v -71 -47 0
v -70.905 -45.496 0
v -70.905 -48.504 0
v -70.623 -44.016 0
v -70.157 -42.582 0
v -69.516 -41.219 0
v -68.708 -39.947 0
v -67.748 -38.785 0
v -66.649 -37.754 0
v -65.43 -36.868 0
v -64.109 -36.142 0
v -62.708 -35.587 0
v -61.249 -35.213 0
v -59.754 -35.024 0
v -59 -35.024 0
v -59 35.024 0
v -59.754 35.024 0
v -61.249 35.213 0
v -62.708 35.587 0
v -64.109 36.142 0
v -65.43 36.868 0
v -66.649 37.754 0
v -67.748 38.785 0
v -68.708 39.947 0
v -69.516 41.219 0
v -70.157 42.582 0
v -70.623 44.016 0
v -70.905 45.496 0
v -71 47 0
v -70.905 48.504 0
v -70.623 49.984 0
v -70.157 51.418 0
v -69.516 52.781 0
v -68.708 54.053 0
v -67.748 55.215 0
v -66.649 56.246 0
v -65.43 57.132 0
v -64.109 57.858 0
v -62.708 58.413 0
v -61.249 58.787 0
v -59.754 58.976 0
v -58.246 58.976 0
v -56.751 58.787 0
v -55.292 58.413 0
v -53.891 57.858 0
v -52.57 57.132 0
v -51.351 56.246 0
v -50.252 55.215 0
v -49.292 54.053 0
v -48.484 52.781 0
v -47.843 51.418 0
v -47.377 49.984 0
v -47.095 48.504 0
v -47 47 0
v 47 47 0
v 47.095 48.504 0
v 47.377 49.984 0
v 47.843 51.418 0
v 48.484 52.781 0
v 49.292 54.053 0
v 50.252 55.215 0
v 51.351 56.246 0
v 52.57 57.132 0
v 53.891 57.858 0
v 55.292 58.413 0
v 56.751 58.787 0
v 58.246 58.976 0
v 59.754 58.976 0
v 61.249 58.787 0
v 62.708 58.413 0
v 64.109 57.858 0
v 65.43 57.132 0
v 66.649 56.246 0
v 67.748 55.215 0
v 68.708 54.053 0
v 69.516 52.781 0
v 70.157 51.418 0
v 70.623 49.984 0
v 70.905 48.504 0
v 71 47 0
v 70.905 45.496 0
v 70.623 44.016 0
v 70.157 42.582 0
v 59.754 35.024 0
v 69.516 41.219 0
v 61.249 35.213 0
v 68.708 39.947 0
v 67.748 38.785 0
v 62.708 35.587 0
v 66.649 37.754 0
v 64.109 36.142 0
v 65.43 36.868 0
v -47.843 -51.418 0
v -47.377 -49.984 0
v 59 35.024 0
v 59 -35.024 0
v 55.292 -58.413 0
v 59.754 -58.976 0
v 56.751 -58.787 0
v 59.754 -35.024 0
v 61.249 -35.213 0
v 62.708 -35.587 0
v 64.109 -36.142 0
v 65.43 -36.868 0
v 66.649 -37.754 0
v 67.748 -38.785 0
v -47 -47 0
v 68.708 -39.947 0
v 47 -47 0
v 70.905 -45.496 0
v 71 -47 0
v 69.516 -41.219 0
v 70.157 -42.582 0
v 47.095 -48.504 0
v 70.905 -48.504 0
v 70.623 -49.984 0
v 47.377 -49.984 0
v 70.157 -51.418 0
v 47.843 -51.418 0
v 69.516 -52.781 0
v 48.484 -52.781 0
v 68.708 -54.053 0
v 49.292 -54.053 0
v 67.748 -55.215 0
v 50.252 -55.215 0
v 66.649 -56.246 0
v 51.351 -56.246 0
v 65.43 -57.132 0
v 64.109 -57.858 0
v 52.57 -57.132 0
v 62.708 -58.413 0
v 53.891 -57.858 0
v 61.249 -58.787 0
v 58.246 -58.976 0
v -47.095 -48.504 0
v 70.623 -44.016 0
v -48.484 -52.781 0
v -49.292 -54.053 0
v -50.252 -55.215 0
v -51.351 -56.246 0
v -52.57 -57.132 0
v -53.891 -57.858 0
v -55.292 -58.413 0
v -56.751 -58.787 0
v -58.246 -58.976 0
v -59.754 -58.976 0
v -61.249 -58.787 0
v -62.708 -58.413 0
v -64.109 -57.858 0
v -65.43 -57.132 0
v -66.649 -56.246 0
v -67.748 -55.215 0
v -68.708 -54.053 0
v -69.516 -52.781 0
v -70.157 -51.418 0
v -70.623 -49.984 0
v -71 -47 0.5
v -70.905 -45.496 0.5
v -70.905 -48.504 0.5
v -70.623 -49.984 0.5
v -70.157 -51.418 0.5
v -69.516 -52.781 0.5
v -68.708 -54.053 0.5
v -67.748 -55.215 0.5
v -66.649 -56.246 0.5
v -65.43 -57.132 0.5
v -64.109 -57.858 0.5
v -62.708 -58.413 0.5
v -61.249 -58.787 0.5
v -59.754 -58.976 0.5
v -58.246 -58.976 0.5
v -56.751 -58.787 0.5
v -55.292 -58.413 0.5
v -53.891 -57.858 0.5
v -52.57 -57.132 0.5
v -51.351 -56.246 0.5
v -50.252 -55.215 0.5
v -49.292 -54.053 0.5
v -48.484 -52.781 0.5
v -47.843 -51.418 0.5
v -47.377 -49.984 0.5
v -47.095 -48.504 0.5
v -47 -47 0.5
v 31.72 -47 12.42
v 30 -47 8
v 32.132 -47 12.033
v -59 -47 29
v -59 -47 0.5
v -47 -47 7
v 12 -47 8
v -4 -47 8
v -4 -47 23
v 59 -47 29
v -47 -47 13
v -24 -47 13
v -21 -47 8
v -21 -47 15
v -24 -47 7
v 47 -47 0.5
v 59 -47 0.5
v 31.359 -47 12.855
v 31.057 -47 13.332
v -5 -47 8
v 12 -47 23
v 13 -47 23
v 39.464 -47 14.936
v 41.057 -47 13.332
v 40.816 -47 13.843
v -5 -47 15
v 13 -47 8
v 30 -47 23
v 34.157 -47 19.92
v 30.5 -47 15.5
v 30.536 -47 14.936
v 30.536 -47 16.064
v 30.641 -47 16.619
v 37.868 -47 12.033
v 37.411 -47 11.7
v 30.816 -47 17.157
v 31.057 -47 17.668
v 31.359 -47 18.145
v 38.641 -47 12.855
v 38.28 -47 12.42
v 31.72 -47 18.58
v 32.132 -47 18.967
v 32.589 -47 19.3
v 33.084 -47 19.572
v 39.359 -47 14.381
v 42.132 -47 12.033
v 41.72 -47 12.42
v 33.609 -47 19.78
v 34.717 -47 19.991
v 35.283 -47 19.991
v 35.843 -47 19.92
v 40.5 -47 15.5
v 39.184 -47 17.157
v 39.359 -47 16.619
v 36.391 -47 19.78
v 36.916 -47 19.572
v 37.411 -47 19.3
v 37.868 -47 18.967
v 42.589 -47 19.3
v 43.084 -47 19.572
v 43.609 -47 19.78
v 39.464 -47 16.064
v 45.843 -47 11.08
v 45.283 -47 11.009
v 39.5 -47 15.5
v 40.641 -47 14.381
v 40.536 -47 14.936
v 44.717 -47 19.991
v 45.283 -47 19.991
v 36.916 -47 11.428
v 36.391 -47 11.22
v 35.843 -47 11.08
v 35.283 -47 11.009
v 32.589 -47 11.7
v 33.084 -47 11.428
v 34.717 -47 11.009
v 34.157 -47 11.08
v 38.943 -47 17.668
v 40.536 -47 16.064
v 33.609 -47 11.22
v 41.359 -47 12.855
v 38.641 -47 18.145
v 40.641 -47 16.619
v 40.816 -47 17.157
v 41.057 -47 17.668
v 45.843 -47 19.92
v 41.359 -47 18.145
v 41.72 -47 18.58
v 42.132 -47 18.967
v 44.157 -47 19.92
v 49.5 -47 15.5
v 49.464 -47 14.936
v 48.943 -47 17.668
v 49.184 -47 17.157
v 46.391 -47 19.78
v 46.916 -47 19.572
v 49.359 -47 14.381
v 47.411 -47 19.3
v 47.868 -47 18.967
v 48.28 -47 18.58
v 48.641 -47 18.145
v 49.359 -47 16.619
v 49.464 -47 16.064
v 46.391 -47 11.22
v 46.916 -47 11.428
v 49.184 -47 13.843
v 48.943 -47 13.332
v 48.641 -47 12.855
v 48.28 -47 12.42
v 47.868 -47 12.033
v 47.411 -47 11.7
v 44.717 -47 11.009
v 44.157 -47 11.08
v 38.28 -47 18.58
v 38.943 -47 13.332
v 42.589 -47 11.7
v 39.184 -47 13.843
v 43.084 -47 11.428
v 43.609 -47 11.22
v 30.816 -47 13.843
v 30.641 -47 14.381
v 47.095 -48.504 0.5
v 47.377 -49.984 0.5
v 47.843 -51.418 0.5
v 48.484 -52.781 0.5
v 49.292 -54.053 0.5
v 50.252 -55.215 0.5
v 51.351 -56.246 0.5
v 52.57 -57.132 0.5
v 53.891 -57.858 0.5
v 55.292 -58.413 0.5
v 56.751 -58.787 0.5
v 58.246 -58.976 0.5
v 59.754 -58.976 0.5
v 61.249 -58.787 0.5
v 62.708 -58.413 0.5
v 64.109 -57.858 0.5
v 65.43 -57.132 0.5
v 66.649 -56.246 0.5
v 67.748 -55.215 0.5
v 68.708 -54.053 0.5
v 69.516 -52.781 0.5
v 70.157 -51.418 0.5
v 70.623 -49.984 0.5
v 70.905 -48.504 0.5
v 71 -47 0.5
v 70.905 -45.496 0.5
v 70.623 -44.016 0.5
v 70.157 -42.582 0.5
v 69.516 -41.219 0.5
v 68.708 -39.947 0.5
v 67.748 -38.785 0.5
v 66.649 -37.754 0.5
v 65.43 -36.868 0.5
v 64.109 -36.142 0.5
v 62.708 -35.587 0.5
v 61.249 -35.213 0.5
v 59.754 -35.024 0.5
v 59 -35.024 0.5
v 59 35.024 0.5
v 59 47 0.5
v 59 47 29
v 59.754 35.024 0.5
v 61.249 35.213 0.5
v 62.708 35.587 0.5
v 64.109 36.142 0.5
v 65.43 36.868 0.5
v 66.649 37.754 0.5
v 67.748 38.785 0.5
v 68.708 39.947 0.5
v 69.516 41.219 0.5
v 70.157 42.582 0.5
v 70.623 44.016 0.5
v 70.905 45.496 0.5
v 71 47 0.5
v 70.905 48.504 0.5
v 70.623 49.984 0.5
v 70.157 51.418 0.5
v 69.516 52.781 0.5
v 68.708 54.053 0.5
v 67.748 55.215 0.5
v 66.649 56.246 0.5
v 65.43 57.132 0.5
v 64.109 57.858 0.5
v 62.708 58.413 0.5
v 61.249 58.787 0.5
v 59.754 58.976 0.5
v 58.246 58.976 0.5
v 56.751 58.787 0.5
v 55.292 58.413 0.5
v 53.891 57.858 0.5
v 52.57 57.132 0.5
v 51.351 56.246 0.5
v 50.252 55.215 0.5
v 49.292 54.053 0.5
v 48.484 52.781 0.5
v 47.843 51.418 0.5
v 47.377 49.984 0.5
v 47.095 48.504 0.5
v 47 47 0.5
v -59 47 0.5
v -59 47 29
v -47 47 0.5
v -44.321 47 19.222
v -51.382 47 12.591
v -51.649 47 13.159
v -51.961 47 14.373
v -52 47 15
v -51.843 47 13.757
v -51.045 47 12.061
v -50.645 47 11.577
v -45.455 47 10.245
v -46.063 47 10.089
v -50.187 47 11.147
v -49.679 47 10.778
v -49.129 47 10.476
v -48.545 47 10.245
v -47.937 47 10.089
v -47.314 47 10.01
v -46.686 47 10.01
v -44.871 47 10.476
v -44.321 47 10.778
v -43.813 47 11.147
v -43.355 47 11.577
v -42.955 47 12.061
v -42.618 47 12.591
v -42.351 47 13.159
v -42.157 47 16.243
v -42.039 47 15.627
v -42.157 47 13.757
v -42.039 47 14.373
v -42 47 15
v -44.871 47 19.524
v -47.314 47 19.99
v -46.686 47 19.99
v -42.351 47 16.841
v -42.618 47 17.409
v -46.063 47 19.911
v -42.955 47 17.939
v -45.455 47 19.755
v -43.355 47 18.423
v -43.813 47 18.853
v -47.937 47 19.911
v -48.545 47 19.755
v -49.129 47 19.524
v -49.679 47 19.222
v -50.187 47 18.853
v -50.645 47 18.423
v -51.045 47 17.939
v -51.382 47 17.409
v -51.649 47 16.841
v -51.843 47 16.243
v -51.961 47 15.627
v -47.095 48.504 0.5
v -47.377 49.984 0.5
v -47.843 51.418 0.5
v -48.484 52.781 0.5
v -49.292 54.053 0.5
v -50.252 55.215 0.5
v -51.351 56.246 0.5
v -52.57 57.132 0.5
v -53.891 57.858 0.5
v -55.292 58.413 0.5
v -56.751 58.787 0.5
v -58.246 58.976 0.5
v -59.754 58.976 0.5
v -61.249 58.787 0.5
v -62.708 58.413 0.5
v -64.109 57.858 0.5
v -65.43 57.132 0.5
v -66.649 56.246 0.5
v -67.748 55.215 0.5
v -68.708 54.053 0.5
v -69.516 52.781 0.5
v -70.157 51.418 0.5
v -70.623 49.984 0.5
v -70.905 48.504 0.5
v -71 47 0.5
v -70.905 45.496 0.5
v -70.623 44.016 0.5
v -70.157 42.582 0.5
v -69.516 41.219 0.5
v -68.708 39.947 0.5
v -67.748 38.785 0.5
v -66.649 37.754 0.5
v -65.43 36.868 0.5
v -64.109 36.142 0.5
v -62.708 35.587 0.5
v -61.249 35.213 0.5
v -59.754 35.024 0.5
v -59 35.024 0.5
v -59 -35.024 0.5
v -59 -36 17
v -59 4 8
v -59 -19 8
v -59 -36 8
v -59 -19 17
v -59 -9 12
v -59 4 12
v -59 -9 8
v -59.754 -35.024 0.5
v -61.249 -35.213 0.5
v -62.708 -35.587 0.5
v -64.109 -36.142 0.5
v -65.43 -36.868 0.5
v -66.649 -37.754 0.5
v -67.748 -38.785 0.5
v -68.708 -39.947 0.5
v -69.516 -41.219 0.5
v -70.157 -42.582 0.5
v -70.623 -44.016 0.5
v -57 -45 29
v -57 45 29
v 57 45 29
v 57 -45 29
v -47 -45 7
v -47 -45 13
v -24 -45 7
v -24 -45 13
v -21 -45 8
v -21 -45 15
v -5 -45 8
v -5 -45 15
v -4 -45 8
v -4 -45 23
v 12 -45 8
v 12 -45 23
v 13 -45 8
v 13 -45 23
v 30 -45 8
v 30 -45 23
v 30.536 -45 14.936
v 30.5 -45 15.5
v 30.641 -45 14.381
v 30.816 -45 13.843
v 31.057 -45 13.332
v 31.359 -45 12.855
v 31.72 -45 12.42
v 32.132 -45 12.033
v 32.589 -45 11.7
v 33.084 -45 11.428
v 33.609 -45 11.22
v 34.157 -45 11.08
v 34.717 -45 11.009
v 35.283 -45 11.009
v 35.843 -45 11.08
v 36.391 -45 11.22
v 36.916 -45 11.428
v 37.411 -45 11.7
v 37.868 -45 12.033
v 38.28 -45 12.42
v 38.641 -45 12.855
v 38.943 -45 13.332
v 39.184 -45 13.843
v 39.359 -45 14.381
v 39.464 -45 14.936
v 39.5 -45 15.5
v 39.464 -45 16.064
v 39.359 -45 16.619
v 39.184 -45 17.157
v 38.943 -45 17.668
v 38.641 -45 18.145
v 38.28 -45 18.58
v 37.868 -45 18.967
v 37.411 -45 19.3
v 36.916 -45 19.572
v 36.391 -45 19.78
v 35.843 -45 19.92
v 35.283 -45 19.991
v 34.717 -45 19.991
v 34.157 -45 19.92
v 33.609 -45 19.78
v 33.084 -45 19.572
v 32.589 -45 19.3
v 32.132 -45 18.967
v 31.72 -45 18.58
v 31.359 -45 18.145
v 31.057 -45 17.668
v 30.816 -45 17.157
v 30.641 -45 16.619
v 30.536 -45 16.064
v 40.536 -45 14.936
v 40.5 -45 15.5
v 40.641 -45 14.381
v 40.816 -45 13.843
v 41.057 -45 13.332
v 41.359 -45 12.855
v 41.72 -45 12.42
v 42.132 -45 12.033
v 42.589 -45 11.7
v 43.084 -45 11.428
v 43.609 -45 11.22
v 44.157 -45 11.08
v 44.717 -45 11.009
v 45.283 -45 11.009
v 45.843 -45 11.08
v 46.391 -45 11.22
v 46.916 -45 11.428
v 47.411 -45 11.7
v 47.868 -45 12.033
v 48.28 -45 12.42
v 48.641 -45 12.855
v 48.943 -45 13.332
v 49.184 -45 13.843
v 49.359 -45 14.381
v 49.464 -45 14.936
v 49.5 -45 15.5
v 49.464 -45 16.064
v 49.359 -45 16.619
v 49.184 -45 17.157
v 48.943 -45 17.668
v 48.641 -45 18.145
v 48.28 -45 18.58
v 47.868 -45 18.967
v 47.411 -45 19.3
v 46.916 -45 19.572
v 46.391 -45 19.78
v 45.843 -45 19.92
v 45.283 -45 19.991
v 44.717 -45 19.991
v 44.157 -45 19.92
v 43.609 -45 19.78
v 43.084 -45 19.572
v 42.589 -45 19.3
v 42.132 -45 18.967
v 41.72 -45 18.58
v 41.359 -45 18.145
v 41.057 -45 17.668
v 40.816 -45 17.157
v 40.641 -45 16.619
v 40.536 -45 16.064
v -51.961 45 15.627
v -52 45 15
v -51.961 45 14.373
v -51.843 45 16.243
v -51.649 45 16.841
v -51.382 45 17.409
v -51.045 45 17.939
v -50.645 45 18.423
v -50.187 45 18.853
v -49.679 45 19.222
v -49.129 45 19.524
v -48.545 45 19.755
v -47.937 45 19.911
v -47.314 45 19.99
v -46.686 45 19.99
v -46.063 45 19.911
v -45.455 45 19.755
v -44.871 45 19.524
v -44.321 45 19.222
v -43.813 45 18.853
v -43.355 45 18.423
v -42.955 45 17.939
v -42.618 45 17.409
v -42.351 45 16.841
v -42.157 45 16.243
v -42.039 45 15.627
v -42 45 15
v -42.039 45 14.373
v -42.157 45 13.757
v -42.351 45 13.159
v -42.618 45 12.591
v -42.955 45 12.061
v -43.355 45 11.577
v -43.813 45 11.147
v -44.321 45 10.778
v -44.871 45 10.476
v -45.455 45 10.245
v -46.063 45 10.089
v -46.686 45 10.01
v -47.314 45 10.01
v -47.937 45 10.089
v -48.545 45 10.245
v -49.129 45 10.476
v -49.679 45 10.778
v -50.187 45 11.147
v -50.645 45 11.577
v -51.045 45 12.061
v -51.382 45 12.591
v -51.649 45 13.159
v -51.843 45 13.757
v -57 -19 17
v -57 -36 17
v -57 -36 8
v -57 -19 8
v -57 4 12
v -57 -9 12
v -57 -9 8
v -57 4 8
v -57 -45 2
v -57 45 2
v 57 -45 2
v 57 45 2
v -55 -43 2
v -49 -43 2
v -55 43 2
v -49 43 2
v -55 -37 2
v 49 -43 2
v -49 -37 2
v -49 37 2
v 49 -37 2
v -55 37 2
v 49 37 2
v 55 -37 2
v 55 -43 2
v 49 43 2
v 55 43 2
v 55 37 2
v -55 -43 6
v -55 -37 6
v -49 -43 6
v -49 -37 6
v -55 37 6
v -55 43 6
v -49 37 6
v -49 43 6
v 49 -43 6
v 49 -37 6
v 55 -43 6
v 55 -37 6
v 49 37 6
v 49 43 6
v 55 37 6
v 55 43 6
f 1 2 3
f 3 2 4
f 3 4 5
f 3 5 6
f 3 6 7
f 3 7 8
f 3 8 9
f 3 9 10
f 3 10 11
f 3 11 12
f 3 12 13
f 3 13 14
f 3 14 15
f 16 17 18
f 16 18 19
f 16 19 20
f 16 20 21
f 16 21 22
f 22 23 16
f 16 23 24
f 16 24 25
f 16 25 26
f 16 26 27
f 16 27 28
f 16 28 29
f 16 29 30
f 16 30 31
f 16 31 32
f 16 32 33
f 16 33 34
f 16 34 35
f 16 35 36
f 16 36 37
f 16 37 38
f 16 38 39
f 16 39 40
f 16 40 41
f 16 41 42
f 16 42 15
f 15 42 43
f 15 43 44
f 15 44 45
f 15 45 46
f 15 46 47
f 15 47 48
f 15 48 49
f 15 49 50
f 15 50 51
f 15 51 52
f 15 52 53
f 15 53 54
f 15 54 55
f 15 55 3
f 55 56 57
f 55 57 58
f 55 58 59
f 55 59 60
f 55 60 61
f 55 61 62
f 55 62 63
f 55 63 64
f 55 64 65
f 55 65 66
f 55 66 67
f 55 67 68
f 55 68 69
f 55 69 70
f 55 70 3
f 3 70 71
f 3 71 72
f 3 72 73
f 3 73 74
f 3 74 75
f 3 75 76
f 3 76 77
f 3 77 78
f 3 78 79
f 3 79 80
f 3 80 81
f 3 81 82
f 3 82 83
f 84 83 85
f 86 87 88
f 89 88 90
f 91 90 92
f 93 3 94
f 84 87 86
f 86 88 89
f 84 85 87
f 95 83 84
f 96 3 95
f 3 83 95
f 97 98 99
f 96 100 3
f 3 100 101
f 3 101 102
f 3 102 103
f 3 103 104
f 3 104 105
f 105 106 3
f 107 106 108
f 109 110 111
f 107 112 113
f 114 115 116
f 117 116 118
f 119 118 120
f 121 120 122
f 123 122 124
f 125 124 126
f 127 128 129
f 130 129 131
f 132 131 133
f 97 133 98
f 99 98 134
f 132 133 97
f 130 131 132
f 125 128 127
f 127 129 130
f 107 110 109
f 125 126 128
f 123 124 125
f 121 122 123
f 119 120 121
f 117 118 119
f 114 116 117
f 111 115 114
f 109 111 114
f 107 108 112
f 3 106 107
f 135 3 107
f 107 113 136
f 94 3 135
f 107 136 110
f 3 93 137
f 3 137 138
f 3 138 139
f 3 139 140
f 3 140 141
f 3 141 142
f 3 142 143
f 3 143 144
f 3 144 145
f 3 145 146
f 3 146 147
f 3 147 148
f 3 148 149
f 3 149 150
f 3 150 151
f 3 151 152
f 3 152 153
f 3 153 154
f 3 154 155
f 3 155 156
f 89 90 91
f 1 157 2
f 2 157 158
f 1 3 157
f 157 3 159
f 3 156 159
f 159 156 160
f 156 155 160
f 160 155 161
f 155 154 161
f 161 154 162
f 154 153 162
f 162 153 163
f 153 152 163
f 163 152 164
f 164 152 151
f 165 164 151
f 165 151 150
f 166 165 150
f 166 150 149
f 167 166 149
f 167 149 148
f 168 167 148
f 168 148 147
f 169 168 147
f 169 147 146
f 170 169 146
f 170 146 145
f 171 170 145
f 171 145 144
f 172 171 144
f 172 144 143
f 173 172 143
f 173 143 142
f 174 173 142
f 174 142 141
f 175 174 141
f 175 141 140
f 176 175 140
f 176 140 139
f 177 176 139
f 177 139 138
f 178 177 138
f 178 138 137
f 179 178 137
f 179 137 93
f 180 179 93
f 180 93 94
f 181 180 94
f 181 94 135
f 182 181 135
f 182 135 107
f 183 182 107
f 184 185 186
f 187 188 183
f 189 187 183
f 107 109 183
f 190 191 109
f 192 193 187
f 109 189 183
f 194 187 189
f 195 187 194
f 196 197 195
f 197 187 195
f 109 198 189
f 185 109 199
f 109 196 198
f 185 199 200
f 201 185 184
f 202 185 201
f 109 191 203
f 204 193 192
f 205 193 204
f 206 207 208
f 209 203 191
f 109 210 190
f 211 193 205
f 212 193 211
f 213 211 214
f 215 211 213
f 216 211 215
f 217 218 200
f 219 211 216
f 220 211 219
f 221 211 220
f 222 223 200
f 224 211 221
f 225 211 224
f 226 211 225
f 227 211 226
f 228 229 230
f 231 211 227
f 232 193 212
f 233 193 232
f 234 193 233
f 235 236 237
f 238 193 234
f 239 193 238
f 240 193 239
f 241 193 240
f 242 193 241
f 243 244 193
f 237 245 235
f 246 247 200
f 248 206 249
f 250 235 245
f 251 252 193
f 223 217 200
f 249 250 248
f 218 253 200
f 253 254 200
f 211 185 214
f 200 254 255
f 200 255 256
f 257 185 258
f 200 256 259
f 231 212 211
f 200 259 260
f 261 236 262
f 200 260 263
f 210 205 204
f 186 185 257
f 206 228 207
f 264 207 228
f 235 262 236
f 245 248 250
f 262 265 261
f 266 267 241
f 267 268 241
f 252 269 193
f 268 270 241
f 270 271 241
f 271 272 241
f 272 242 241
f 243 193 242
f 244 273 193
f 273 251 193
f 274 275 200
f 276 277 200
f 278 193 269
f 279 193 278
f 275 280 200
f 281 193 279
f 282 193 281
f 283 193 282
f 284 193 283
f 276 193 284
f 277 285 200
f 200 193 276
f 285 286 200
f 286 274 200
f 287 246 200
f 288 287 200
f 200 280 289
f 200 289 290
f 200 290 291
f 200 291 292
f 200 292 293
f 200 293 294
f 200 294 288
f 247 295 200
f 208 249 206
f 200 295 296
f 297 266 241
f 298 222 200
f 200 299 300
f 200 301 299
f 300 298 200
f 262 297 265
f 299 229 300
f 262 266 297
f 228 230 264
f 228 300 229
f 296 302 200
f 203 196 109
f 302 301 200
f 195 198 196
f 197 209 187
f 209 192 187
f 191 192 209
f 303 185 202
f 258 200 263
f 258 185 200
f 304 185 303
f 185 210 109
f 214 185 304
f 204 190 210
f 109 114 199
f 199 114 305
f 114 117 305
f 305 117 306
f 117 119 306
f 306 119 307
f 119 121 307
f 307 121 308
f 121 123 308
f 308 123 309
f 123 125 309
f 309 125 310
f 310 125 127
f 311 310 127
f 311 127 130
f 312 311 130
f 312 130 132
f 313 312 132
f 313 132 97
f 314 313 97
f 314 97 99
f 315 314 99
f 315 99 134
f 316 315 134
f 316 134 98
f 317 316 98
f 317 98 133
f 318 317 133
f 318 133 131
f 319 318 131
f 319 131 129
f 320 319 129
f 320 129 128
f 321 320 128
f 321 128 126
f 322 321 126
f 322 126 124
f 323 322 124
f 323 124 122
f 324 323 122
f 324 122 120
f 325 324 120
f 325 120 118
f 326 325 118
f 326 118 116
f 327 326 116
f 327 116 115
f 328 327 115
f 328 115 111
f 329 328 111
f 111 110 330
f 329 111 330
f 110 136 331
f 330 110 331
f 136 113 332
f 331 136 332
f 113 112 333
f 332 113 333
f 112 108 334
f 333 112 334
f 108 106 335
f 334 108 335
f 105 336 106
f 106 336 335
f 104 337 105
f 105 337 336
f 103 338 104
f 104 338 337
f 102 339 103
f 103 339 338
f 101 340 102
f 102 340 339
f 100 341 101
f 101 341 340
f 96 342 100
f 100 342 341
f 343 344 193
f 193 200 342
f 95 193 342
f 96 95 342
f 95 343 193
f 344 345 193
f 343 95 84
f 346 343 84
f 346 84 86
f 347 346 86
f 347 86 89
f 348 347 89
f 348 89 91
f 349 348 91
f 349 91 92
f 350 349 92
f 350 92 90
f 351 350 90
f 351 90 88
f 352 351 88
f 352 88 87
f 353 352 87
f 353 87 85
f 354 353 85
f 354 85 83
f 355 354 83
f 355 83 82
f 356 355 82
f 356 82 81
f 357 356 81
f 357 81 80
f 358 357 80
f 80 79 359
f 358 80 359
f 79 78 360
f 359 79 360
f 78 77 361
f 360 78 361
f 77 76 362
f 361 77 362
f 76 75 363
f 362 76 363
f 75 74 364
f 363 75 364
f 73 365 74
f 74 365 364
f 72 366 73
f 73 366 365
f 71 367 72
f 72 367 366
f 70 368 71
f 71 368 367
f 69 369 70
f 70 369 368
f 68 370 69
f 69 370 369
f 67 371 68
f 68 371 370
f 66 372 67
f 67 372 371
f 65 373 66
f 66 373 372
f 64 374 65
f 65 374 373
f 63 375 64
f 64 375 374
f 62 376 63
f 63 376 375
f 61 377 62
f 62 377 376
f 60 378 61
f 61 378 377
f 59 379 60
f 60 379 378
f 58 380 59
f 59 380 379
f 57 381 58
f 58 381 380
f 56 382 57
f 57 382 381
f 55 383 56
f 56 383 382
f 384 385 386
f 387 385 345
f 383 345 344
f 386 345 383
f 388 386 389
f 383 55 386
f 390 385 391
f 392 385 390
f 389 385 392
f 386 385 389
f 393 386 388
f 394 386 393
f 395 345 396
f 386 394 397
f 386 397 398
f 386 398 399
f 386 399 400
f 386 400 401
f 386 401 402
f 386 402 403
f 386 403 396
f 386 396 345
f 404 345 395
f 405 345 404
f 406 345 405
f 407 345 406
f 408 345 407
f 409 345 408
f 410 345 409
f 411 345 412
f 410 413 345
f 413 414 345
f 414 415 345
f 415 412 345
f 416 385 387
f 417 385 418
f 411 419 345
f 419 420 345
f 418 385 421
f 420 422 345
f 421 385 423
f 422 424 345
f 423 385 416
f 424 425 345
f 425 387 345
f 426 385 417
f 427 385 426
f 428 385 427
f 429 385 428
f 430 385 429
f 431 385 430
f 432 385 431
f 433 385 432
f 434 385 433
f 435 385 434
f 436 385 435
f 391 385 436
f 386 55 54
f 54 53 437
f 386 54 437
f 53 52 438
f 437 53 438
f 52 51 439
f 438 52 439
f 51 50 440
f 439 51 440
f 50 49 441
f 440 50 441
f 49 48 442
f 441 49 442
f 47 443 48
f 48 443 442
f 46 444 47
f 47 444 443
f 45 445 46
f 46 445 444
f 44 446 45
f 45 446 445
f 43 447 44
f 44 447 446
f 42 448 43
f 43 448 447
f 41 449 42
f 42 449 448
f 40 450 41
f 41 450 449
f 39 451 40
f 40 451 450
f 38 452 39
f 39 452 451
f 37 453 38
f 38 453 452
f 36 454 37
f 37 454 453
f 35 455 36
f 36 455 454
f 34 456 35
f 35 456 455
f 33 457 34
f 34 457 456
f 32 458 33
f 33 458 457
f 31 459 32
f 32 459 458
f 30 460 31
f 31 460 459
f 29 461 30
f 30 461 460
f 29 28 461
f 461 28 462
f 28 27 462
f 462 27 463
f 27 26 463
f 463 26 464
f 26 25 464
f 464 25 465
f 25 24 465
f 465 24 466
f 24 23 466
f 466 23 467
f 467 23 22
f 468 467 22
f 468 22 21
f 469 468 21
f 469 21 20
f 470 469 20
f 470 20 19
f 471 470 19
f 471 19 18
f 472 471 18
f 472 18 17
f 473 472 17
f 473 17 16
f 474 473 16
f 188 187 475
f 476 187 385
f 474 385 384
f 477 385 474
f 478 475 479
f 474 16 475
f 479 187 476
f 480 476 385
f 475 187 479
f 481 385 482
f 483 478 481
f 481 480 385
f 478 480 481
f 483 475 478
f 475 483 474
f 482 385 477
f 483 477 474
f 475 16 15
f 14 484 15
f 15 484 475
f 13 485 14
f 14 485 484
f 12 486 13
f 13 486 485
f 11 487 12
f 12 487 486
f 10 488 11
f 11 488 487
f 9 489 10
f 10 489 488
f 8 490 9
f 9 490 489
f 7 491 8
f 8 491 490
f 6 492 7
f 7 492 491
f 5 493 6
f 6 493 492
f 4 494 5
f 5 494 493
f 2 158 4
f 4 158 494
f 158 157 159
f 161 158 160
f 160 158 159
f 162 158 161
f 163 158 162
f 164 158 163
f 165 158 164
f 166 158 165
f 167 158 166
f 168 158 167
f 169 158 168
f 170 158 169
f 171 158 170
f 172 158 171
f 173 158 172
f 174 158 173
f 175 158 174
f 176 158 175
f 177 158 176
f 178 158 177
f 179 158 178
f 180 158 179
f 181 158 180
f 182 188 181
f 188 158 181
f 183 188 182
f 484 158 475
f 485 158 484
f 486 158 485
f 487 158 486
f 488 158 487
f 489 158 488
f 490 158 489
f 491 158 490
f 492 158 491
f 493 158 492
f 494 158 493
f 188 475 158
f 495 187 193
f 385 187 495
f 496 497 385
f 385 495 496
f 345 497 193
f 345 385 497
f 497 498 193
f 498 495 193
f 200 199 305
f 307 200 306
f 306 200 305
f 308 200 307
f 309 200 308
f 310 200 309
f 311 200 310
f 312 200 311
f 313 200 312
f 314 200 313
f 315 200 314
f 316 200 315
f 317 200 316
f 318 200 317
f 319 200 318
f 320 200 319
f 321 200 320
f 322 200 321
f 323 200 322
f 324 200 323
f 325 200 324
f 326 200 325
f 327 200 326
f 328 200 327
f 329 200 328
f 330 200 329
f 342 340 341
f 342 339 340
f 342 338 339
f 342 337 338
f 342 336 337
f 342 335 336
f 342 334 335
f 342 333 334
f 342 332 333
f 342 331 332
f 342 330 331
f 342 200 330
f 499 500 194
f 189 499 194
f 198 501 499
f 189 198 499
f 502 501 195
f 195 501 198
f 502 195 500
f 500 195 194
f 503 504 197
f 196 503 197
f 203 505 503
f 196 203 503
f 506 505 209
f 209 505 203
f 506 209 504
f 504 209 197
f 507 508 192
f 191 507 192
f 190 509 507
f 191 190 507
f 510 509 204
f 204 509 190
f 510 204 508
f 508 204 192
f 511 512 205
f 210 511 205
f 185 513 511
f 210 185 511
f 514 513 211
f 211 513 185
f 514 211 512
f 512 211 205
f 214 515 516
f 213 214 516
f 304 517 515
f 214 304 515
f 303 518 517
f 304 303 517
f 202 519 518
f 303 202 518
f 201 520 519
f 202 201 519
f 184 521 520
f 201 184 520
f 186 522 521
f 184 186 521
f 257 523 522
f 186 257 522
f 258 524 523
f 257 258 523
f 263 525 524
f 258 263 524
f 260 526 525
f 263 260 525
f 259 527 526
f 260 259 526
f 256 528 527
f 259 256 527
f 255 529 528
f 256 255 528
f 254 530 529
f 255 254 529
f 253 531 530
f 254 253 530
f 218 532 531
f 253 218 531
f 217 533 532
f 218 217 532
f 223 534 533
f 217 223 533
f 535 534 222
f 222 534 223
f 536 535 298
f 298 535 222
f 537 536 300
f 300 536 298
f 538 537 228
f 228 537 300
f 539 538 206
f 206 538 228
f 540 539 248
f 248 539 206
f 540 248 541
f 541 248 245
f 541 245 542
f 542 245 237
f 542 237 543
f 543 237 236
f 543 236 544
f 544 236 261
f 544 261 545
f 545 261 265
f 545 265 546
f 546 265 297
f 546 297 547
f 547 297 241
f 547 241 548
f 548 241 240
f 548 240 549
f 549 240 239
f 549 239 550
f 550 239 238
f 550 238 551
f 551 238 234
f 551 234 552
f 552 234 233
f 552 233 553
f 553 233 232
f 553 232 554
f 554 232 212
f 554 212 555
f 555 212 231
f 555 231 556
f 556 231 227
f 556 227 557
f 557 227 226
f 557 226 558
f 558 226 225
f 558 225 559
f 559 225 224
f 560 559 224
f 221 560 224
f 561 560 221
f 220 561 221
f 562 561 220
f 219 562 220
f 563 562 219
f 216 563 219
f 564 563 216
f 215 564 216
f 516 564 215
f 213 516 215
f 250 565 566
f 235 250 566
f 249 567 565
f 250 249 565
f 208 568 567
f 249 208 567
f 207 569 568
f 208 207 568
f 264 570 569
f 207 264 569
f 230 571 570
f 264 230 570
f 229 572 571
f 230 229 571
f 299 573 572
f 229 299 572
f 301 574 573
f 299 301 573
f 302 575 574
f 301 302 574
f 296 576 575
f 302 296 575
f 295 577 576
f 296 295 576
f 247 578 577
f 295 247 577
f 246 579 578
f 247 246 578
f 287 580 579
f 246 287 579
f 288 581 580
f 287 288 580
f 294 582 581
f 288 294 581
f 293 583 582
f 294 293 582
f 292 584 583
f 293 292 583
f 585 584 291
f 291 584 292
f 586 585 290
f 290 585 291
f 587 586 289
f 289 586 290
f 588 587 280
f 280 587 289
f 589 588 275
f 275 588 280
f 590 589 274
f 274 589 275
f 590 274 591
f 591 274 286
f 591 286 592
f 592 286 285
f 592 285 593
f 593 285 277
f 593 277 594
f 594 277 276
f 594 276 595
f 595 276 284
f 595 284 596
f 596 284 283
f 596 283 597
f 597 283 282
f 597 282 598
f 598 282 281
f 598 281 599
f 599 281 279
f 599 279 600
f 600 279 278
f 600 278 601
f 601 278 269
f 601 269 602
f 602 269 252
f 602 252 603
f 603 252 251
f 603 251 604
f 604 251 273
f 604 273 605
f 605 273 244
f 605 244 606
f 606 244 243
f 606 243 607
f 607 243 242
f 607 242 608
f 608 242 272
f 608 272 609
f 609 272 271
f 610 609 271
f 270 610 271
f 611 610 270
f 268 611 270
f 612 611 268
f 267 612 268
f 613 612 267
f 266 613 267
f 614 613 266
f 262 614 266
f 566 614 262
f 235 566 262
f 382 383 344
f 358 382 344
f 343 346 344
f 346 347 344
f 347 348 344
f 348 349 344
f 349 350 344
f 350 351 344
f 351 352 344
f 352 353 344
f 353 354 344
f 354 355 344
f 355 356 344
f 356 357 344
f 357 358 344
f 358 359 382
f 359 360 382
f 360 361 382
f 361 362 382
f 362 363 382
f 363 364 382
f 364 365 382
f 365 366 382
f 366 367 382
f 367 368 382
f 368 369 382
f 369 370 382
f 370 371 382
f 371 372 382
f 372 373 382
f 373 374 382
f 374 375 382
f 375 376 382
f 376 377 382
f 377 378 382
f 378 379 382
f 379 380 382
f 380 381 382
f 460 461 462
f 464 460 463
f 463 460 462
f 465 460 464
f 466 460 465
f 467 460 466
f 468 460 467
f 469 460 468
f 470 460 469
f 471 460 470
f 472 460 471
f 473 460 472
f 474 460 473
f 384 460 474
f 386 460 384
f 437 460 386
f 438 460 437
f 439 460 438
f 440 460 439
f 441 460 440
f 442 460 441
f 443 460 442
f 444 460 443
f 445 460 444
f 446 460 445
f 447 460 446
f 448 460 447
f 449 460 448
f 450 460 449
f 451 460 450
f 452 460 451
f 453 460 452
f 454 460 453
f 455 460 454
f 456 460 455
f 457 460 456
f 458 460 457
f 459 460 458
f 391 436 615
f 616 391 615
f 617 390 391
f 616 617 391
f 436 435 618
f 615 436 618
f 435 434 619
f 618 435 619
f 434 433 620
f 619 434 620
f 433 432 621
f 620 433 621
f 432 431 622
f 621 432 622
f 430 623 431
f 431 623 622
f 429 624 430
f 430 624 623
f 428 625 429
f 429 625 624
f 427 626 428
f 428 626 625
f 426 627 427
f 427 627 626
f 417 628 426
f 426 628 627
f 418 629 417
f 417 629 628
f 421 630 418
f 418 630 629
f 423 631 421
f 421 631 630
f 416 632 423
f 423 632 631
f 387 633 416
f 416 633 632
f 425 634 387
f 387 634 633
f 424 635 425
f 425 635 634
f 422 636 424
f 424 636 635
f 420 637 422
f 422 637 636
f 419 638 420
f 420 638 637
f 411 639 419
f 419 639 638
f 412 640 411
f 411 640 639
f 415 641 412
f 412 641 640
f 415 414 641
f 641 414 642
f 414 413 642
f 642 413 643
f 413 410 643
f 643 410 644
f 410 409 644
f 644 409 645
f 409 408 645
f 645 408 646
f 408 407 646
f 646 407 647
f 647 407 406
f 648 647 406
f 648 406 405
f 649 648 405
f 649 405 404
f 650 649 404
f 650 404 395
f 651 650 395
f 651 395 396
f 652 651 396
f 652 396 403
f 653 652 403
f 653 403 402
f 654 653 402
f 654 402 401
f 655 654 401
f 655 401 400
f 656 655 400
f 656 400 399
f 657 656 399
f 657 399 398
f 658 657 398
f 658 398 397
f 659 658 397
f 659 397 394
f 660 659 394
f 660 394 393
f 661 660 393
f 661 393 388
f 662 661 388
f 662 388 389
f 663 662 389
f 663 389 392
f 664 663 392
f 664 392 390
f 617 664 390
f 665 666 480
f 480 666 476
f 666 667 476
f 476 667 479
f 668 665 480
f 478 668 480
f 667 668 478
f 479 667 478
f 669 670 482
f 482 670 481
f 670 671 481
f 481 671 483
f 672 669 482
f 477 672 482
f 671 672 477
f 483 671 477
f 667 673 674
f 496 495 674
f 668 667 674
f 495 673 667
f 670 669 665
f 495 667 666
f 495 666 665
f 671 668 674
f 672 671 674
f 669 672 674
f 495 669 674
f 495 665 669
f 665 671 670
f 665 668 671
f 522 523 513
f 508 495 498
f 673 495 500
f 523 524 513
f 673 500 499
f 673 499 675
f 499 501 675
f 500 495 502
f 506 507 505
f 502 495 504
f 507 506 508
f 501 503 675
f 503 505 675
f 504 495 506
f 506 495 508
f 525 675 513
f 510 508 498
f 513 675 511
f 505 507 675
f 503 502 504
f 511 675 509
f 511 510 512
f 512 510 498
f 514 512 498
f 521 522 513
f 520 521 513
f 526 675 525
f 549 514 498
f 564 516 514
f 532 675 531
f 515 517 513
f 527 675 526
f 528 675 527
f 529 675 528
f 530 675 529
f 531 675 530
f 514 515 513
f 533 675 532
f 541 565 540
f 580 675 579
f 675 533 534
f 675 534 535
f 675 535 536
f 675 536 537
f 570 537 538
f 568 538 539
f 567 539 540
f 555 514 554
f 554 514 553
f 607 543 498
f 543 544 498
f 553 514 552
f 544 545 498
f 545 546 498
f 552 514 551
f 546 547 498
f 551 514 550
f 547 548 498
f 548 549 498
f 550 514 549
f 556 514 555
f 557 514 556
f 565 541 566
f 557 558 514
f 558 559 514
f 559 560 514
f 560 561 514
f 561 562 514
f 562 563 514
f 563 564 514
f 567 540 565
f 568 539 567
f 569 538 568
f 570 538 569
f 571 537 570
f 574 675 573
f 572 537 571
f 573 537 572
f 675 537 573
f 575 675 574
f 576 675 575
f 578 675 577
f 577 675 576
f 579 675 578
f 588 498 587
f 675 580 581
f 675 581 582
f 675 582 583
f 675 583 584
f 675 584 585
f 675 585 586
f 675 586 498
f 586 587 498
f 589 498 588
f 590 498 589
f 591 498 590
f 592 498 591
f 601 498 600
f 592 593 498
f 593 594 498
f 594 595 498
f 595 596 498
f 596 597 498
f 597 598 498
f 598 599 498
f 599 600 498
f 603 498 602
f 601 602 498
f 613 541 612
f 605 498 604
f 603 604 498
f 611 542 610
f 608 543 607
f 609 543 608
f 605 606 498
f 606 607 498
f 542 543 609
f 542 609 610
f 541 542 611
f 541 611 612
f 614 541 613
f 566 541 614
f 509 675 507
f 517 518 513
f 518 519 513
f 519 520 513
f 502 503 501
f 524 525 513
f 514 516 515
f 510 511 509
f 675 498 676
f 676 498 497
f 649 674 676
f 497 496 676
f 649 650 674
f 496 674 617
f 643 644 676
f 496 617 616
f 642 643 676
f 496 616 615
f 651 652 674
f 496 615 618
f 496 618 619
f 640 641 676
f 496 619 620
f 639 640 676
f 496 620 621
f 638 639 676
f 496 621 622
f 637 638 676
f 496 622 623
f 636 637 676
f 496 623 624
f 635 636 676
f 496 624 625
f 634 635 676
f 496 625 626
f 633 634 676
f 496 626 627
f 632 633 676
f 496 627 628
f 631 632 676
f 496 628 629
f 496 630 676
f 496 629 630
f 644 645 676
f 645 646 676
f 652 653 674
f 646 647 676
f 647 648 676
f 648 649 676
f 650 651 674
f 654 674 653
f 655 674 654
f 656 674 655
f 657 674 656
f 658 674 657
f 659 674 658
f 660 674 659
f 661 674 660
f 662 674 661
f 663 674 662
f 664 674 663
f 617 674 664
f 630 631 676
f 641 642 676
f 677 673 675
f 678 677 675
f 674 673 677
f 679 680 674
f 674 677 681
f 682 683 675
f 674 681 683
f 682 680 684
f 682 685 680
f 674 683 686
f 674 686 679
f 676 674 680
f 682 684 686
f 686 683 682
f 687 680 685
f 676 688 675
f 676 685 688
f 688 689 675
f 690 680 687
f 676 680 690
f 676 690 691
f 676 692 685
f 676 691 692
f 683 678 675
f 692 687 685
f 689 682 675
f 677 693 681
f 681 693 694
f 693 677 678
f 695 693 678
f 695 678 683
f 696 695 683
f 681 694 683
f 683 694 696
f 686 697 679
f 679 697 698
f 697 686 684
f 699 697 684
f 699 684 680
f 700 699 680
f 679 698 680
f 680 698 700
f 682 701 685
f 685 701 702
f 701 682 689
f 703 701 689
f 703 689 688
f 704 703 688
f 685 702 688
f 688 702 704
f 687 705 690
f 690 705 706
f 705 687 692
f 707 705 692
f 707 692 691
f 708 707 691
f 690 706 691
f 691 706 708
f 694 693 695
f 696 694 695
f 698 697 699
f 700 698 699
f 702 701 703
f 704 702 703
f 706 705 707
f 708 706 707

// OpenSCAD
/* [Global] */

//which parts should be created
part = "bottom"; // [both:Bottom and Top,bottom:Bottom only,top:Top Only,closed:Closed case(for display only- not printable)]

/* [Connectors Bottom] */
open_power_input=1; // [1:Open,0:Closed]
open_power_and_reset_button=1; // [1:Open,0:Closed]
open_micro_usb=1; // [1:Open,0:Closed]
open_hdmi=1; // [1:Open,0:Closed]
open_network=1; // [1:Open,0:Closed]
open_usb=1; // [1:Open,0:Closed]
open_audio=1; // [1:Open,0:Closed]
open_sd_slot=1; // [1:Open,0:Closed]

/* [Connectors Top] */
open_gpio=1; // [1:Open,0:Closed]
open_sata=1; // [1:Open,0:Closed]
open_lvds=1; // [1:Open,0:Closed]
open_camera=1; // [1:Open,0:Closed]
open_dc_in=1; // [1:Open,0:Closed]
open_rtc_batt=1; // [1:Open,0:Closed]
open_additional_usb=1; // [1:Open,0:Closed]
open_spi=1; // [1:Open,0:Closed]

/* [Advanced] */
//add mouse ears to prevent warping
mouse_ear_radius=12; // [0:20]
circle_accuracy=50; // [25:200]
//base height for ground/top plate
ground_height=2; // [1:5]
wall_width=2; // [1:5]
//gap between board and wall
gap=2; // [0:10]
//additional wall height 
top_height=9;
//height of the four elevator sockets
elevator_width=6; // [1:10]
elevator_height=4; // [0:10]
wall_text="UDOO";

/* [Hidden] */
udoo_board_length=110;
udoo_board_width=86;
udoo_board_height=18;
//additional vertical offset for each hole ("baseline")
hole_vertical_offset=2;
//don't turn top
debug=false;

/* derived vars */

total_ground_length=udoo_board_length+2*gap+2*wall_width;
total_ground_width=udoo_board_width+2*gap+2*wall_width;
wall_height=udoo_board_height+top_height;

top_hole=3*ground_height;


include <write/Write.scad>


/* *************BOTTOM****************** */

module ground(){
 cube([total_ground_length,total_ground_width,ground_height]);
}

module long_wall(){
 cube([total_ground_length,wall_width,wall_height]);
}

module short_wall(){
 cube([wall_width,total_ground_width,wall_height]);
}

module all_walls(){
	ground();
	
	//long wall with all the connectors
	translate([0,0,ground_height]){
		long_wall();
	}
	
	
	//long wall wih the power input
	translate([0,total_ground_width-wall_width,ground_height]){
		long_wall();
	}
	
	//short wall with power button
	translate([0,0,ground_height]){
		short_wall();
	}
	
	//short wall with no holes
	translate([total_ground_length-wall_width,0,ground_height]){
    difference(){ 
     short_wall();
       if (wall_text!=""){
			writecube(wall_text,[wall_width-1,total_ground_width/2,wall_height/2],[wall_width,total_ground_width,wall_height],face="right",h=12);
       }
    }
    
	}
}
module hole_in_long_wall_1(offset,width,height,voffset=0,type="cube"){
 translate([wall_width+gap+offset,-1,ground_height+elevator_height+hole_vertical_offset+voffset]){
   if (type=="cube"){
   	  cube([width,wall_width+2,height]);
   } else if (type=="cylinder") {
     translate([width/2,wall_width,height/2])rotate(a=90, v=[1,0,0])cylinder(h=wall_width+2,r=width/2,$fn=circle_accuracy,center=true);
   }
 }
}

module hole_in_long_wall_2(offset,width,height,voffset=0,type="cube"){
 translate([wall_width+gap+offset,total_ground_width-wall_width-1,ground_height+elevator_height+hole_vertical_offset+voffset]){
 if (type=="cube"){
   	  cube([width,wall_width+2,height]);
   } else if (type=="cylinder") {
     translate([width/2,wall_width,height/2])rotate(a=90, v=[1,0,0])cylinder(h=wall_width+2,r=width/2,$fn=circle_accuracy,center=true);
   }
 }
}

module hole_in_short_wall(offset,width,height,voffset=0){
 translate([-1,wall_width+gap+offset,ground_height+elevator_height+hole_vertical_offset+voffset]){
   cube([wall_width+2,width,height]);
 }
}


module hdmi(){
 hole_in_long_wall_1(34,16,7);
}

module micro_usb(){
 hole_in_long_wall_1(8,23,6,-1);
}

module network(){
 hole_in_long_wall_1(51,16,15);
}

module usb(){
 hole_in_long_wall_1(68,17,15);
}

module audio(){
 hole_in_long_wall_1(85.5,9,9,type="cylinder",voffset=3);
 hole_in_long_wall_1(95.5,9,9,type="cylinder",voffset=3);
}

module power_input(){
 hole_in_long_wall_2(3,10,10,voffset=2,type="cylinder");
}

module power_reset_button(){
 hole_in_short_wall(7,17,9);
}

module sd_slot(){
 hole_in_short_wall(34,13,4);
}

module elevators(){
 translate([wall_width+gap,wall_width+gap,ground_height])cube([elevator_width,elevator_width,elevator_height]);
 translate([total_ground_length-wall_width-gap-elevator_width,wall_width+gap,ground_height])cube([elevator_width,elevator_width,elevator_height]);
 translate([wall_width+gap,total_ground_width-wall_width-gap-elevator_width,ground_height])cube([elevator_width,elevator_width,elevator_height]);
 translate([total_ground_length-wall_width-gap-elevator_width,total_ground_width-wall_width-gap-elevator_width,ground_height])cube([elevator_width,elevator_width,elevator_height]);
}


module mouse_ear_cylinders(){
 if (mouse_ear_radius > 0 ) {
  for (i = [0,total_ground_length]){
   for (j = [0,total_ground_width]){
		translate([i,j,0])cylinder(r=mouse_ear_radius,h=0.5,$fn=circle_accuracy);
   }
  }
 }
}
module mouse_ears(){
 color("grey") difference(){
  mouse_ear_cylinders();
  translate([0,0,-1])cube([total_ground_length,total_ground_width,1]);
 }
}

module udoo_case_bottom(){
 difference(){
	all_walls();

 /* long wall 1 holes */
  if (open_micro_usb==1){
	 micro_usb();
  }

   if (open_hdmi==1){
     hdmi();
   }

  if (open_network==1){
    network();
  }

  if (open_usb==1){
    usb();
  }

  if (open_audio==1){
    audio();
  }

 /* long wall 2 holes */
 if (open_power_input==1){
  power_input();
 }

 /* short wall holes */
 if (open_power_and_reset_button==1){
   power_reset_button();
 }

 if (open_sd_slot==1){
   sd_slot();
 }
 } // end of difference

 elevators();


} // end of module udoo_case_bottom

/* *************TOP****************** */


module top_gpio(){
	//north
	translate([30,87,0])cube([80,4,top_hole]);
	//east
	translate([105,37,0])cube([6,54,top_hole]);
	//south
	 translate([40,37,0])cube([67,4,top_hole]);
}

module top_lvds(){
	translate([88,30,0])cube([26,6,top_hole]);
}
module top_sata(){
	translate([96,24,0])cube([18,7,top_hole]);
}
module top_camera(){
	translate([111,10,0])cube([4,12,top_hole]);
}
module top_dc_in(){
	translate([63,33,0])cube([8,6,top_hole]);
}
module top_rtc_batt(){
	translate([6,29,0])cube([4,7,top_hole]);
}
module top_usb(){
	translate([20,10,0])cube([10,5,top_hole]);
}
module top_spi(){
	translate([73,21,0])cube([12,4,top_hole]);
}

module top_base_frame(){
 //main plate
  translate([0,0,ground_height])cube([total_ground_length,total_ground_width,ground_height]);

  //frame
  translate([wall_width,wall_width,0]) difference(){
  cube([total_ground_length-2*wall_width,total_ground_width-2*wall_width,ground_height]);
  translate([1,1,-1])cube([total_ground_length-2*wall_width-2,total_ground_width-2*wall_width-2,ground_height]);
  }

  //corners
  corner_height=7;
  corner_length=5;
  translate([wall_width,wall_width,-corner_height])cube([corner_length,wall_width,corner_height]);
  translate([total_ground_length-wall_width-corner_length,wall_width,-corner_height])cube([corner_length,wall_width,corner_height]);

   translate([wall_width,total_ground_width-2*wall_width,-corner_height])cube([corner_length,wall_width,corner_height]);

 translate([total_ground_length-wall_width-corner_length,total_ground_width-2*wall_width,-corner_height])cube([corner_length,wall_width,corner_height]);
}

module udoo_case_top(){
  difference(){
	top_base_frame();

  if (open_gpio==1){
	 top_gpio();
  }

  if (open_sata==1){
	 top_sata();
  }

 if (open_lvds==1){
	 top_lvds();
  }

 if (open_camera==1){
	 top_camera();
  }
 if (open_dc_in==1){
	 top_dc_in();
  }
 if (open_rtc_batt==1){
	 top_rtc_batt();
  }
 if (open_additional_usb==1){
	 top_usb();
  }

if (open_spi==1){
	 top_spi();
  }
 } //end of difference

}



/* ************* "MAIN PROGRAM" ****************** */

if (part=="both"){
 translate([0,-total_ground_width/2,0]){
   udoo_case_bottom();
    //Test holes here
   // hole_in_long_wall_1(87,19,14,type="cylinder");
 }
 translate([-total_ground_length-2,total_ground_width/2,2*ground_height])rotate([180,0,0])udoo_case_top();

} else if (part=="bottom"){
 translate([-total_ground_length/2,-total_ground_width/2,0])udoo_case_bottom();
 translate([-total_ground_length/2,-total_ground_width/2,0])mouse_ears();
} else if (part=="top") {
  if(debug==true){
  	udoo_case_top();
  } else {
	translate([-total_ground_length/2,total_ground_width/2,2*ground_height])rotate([180,0,0])udoo_case_top();
  translate([-total_ground_length/2,-total_ground_width/2,0]) mouse_ears();
		
  }


} else if (part=="closed"){
  color("Crimson")translate([-total_ground_length/2,-total_ground_width/2,0])udoo_case_bottom();
  color("Khaki")translate([-total_ground_length/2,-total_ground_width/2,0])translate([0,0,wall_height]) udoo_case_top();
}

/*
mouse ears 12
*/


//TODO: screw holes (top)

//Nice to have
//TODO: Text on walls / top ?
//TODO: 2.5'' drive case on top?
